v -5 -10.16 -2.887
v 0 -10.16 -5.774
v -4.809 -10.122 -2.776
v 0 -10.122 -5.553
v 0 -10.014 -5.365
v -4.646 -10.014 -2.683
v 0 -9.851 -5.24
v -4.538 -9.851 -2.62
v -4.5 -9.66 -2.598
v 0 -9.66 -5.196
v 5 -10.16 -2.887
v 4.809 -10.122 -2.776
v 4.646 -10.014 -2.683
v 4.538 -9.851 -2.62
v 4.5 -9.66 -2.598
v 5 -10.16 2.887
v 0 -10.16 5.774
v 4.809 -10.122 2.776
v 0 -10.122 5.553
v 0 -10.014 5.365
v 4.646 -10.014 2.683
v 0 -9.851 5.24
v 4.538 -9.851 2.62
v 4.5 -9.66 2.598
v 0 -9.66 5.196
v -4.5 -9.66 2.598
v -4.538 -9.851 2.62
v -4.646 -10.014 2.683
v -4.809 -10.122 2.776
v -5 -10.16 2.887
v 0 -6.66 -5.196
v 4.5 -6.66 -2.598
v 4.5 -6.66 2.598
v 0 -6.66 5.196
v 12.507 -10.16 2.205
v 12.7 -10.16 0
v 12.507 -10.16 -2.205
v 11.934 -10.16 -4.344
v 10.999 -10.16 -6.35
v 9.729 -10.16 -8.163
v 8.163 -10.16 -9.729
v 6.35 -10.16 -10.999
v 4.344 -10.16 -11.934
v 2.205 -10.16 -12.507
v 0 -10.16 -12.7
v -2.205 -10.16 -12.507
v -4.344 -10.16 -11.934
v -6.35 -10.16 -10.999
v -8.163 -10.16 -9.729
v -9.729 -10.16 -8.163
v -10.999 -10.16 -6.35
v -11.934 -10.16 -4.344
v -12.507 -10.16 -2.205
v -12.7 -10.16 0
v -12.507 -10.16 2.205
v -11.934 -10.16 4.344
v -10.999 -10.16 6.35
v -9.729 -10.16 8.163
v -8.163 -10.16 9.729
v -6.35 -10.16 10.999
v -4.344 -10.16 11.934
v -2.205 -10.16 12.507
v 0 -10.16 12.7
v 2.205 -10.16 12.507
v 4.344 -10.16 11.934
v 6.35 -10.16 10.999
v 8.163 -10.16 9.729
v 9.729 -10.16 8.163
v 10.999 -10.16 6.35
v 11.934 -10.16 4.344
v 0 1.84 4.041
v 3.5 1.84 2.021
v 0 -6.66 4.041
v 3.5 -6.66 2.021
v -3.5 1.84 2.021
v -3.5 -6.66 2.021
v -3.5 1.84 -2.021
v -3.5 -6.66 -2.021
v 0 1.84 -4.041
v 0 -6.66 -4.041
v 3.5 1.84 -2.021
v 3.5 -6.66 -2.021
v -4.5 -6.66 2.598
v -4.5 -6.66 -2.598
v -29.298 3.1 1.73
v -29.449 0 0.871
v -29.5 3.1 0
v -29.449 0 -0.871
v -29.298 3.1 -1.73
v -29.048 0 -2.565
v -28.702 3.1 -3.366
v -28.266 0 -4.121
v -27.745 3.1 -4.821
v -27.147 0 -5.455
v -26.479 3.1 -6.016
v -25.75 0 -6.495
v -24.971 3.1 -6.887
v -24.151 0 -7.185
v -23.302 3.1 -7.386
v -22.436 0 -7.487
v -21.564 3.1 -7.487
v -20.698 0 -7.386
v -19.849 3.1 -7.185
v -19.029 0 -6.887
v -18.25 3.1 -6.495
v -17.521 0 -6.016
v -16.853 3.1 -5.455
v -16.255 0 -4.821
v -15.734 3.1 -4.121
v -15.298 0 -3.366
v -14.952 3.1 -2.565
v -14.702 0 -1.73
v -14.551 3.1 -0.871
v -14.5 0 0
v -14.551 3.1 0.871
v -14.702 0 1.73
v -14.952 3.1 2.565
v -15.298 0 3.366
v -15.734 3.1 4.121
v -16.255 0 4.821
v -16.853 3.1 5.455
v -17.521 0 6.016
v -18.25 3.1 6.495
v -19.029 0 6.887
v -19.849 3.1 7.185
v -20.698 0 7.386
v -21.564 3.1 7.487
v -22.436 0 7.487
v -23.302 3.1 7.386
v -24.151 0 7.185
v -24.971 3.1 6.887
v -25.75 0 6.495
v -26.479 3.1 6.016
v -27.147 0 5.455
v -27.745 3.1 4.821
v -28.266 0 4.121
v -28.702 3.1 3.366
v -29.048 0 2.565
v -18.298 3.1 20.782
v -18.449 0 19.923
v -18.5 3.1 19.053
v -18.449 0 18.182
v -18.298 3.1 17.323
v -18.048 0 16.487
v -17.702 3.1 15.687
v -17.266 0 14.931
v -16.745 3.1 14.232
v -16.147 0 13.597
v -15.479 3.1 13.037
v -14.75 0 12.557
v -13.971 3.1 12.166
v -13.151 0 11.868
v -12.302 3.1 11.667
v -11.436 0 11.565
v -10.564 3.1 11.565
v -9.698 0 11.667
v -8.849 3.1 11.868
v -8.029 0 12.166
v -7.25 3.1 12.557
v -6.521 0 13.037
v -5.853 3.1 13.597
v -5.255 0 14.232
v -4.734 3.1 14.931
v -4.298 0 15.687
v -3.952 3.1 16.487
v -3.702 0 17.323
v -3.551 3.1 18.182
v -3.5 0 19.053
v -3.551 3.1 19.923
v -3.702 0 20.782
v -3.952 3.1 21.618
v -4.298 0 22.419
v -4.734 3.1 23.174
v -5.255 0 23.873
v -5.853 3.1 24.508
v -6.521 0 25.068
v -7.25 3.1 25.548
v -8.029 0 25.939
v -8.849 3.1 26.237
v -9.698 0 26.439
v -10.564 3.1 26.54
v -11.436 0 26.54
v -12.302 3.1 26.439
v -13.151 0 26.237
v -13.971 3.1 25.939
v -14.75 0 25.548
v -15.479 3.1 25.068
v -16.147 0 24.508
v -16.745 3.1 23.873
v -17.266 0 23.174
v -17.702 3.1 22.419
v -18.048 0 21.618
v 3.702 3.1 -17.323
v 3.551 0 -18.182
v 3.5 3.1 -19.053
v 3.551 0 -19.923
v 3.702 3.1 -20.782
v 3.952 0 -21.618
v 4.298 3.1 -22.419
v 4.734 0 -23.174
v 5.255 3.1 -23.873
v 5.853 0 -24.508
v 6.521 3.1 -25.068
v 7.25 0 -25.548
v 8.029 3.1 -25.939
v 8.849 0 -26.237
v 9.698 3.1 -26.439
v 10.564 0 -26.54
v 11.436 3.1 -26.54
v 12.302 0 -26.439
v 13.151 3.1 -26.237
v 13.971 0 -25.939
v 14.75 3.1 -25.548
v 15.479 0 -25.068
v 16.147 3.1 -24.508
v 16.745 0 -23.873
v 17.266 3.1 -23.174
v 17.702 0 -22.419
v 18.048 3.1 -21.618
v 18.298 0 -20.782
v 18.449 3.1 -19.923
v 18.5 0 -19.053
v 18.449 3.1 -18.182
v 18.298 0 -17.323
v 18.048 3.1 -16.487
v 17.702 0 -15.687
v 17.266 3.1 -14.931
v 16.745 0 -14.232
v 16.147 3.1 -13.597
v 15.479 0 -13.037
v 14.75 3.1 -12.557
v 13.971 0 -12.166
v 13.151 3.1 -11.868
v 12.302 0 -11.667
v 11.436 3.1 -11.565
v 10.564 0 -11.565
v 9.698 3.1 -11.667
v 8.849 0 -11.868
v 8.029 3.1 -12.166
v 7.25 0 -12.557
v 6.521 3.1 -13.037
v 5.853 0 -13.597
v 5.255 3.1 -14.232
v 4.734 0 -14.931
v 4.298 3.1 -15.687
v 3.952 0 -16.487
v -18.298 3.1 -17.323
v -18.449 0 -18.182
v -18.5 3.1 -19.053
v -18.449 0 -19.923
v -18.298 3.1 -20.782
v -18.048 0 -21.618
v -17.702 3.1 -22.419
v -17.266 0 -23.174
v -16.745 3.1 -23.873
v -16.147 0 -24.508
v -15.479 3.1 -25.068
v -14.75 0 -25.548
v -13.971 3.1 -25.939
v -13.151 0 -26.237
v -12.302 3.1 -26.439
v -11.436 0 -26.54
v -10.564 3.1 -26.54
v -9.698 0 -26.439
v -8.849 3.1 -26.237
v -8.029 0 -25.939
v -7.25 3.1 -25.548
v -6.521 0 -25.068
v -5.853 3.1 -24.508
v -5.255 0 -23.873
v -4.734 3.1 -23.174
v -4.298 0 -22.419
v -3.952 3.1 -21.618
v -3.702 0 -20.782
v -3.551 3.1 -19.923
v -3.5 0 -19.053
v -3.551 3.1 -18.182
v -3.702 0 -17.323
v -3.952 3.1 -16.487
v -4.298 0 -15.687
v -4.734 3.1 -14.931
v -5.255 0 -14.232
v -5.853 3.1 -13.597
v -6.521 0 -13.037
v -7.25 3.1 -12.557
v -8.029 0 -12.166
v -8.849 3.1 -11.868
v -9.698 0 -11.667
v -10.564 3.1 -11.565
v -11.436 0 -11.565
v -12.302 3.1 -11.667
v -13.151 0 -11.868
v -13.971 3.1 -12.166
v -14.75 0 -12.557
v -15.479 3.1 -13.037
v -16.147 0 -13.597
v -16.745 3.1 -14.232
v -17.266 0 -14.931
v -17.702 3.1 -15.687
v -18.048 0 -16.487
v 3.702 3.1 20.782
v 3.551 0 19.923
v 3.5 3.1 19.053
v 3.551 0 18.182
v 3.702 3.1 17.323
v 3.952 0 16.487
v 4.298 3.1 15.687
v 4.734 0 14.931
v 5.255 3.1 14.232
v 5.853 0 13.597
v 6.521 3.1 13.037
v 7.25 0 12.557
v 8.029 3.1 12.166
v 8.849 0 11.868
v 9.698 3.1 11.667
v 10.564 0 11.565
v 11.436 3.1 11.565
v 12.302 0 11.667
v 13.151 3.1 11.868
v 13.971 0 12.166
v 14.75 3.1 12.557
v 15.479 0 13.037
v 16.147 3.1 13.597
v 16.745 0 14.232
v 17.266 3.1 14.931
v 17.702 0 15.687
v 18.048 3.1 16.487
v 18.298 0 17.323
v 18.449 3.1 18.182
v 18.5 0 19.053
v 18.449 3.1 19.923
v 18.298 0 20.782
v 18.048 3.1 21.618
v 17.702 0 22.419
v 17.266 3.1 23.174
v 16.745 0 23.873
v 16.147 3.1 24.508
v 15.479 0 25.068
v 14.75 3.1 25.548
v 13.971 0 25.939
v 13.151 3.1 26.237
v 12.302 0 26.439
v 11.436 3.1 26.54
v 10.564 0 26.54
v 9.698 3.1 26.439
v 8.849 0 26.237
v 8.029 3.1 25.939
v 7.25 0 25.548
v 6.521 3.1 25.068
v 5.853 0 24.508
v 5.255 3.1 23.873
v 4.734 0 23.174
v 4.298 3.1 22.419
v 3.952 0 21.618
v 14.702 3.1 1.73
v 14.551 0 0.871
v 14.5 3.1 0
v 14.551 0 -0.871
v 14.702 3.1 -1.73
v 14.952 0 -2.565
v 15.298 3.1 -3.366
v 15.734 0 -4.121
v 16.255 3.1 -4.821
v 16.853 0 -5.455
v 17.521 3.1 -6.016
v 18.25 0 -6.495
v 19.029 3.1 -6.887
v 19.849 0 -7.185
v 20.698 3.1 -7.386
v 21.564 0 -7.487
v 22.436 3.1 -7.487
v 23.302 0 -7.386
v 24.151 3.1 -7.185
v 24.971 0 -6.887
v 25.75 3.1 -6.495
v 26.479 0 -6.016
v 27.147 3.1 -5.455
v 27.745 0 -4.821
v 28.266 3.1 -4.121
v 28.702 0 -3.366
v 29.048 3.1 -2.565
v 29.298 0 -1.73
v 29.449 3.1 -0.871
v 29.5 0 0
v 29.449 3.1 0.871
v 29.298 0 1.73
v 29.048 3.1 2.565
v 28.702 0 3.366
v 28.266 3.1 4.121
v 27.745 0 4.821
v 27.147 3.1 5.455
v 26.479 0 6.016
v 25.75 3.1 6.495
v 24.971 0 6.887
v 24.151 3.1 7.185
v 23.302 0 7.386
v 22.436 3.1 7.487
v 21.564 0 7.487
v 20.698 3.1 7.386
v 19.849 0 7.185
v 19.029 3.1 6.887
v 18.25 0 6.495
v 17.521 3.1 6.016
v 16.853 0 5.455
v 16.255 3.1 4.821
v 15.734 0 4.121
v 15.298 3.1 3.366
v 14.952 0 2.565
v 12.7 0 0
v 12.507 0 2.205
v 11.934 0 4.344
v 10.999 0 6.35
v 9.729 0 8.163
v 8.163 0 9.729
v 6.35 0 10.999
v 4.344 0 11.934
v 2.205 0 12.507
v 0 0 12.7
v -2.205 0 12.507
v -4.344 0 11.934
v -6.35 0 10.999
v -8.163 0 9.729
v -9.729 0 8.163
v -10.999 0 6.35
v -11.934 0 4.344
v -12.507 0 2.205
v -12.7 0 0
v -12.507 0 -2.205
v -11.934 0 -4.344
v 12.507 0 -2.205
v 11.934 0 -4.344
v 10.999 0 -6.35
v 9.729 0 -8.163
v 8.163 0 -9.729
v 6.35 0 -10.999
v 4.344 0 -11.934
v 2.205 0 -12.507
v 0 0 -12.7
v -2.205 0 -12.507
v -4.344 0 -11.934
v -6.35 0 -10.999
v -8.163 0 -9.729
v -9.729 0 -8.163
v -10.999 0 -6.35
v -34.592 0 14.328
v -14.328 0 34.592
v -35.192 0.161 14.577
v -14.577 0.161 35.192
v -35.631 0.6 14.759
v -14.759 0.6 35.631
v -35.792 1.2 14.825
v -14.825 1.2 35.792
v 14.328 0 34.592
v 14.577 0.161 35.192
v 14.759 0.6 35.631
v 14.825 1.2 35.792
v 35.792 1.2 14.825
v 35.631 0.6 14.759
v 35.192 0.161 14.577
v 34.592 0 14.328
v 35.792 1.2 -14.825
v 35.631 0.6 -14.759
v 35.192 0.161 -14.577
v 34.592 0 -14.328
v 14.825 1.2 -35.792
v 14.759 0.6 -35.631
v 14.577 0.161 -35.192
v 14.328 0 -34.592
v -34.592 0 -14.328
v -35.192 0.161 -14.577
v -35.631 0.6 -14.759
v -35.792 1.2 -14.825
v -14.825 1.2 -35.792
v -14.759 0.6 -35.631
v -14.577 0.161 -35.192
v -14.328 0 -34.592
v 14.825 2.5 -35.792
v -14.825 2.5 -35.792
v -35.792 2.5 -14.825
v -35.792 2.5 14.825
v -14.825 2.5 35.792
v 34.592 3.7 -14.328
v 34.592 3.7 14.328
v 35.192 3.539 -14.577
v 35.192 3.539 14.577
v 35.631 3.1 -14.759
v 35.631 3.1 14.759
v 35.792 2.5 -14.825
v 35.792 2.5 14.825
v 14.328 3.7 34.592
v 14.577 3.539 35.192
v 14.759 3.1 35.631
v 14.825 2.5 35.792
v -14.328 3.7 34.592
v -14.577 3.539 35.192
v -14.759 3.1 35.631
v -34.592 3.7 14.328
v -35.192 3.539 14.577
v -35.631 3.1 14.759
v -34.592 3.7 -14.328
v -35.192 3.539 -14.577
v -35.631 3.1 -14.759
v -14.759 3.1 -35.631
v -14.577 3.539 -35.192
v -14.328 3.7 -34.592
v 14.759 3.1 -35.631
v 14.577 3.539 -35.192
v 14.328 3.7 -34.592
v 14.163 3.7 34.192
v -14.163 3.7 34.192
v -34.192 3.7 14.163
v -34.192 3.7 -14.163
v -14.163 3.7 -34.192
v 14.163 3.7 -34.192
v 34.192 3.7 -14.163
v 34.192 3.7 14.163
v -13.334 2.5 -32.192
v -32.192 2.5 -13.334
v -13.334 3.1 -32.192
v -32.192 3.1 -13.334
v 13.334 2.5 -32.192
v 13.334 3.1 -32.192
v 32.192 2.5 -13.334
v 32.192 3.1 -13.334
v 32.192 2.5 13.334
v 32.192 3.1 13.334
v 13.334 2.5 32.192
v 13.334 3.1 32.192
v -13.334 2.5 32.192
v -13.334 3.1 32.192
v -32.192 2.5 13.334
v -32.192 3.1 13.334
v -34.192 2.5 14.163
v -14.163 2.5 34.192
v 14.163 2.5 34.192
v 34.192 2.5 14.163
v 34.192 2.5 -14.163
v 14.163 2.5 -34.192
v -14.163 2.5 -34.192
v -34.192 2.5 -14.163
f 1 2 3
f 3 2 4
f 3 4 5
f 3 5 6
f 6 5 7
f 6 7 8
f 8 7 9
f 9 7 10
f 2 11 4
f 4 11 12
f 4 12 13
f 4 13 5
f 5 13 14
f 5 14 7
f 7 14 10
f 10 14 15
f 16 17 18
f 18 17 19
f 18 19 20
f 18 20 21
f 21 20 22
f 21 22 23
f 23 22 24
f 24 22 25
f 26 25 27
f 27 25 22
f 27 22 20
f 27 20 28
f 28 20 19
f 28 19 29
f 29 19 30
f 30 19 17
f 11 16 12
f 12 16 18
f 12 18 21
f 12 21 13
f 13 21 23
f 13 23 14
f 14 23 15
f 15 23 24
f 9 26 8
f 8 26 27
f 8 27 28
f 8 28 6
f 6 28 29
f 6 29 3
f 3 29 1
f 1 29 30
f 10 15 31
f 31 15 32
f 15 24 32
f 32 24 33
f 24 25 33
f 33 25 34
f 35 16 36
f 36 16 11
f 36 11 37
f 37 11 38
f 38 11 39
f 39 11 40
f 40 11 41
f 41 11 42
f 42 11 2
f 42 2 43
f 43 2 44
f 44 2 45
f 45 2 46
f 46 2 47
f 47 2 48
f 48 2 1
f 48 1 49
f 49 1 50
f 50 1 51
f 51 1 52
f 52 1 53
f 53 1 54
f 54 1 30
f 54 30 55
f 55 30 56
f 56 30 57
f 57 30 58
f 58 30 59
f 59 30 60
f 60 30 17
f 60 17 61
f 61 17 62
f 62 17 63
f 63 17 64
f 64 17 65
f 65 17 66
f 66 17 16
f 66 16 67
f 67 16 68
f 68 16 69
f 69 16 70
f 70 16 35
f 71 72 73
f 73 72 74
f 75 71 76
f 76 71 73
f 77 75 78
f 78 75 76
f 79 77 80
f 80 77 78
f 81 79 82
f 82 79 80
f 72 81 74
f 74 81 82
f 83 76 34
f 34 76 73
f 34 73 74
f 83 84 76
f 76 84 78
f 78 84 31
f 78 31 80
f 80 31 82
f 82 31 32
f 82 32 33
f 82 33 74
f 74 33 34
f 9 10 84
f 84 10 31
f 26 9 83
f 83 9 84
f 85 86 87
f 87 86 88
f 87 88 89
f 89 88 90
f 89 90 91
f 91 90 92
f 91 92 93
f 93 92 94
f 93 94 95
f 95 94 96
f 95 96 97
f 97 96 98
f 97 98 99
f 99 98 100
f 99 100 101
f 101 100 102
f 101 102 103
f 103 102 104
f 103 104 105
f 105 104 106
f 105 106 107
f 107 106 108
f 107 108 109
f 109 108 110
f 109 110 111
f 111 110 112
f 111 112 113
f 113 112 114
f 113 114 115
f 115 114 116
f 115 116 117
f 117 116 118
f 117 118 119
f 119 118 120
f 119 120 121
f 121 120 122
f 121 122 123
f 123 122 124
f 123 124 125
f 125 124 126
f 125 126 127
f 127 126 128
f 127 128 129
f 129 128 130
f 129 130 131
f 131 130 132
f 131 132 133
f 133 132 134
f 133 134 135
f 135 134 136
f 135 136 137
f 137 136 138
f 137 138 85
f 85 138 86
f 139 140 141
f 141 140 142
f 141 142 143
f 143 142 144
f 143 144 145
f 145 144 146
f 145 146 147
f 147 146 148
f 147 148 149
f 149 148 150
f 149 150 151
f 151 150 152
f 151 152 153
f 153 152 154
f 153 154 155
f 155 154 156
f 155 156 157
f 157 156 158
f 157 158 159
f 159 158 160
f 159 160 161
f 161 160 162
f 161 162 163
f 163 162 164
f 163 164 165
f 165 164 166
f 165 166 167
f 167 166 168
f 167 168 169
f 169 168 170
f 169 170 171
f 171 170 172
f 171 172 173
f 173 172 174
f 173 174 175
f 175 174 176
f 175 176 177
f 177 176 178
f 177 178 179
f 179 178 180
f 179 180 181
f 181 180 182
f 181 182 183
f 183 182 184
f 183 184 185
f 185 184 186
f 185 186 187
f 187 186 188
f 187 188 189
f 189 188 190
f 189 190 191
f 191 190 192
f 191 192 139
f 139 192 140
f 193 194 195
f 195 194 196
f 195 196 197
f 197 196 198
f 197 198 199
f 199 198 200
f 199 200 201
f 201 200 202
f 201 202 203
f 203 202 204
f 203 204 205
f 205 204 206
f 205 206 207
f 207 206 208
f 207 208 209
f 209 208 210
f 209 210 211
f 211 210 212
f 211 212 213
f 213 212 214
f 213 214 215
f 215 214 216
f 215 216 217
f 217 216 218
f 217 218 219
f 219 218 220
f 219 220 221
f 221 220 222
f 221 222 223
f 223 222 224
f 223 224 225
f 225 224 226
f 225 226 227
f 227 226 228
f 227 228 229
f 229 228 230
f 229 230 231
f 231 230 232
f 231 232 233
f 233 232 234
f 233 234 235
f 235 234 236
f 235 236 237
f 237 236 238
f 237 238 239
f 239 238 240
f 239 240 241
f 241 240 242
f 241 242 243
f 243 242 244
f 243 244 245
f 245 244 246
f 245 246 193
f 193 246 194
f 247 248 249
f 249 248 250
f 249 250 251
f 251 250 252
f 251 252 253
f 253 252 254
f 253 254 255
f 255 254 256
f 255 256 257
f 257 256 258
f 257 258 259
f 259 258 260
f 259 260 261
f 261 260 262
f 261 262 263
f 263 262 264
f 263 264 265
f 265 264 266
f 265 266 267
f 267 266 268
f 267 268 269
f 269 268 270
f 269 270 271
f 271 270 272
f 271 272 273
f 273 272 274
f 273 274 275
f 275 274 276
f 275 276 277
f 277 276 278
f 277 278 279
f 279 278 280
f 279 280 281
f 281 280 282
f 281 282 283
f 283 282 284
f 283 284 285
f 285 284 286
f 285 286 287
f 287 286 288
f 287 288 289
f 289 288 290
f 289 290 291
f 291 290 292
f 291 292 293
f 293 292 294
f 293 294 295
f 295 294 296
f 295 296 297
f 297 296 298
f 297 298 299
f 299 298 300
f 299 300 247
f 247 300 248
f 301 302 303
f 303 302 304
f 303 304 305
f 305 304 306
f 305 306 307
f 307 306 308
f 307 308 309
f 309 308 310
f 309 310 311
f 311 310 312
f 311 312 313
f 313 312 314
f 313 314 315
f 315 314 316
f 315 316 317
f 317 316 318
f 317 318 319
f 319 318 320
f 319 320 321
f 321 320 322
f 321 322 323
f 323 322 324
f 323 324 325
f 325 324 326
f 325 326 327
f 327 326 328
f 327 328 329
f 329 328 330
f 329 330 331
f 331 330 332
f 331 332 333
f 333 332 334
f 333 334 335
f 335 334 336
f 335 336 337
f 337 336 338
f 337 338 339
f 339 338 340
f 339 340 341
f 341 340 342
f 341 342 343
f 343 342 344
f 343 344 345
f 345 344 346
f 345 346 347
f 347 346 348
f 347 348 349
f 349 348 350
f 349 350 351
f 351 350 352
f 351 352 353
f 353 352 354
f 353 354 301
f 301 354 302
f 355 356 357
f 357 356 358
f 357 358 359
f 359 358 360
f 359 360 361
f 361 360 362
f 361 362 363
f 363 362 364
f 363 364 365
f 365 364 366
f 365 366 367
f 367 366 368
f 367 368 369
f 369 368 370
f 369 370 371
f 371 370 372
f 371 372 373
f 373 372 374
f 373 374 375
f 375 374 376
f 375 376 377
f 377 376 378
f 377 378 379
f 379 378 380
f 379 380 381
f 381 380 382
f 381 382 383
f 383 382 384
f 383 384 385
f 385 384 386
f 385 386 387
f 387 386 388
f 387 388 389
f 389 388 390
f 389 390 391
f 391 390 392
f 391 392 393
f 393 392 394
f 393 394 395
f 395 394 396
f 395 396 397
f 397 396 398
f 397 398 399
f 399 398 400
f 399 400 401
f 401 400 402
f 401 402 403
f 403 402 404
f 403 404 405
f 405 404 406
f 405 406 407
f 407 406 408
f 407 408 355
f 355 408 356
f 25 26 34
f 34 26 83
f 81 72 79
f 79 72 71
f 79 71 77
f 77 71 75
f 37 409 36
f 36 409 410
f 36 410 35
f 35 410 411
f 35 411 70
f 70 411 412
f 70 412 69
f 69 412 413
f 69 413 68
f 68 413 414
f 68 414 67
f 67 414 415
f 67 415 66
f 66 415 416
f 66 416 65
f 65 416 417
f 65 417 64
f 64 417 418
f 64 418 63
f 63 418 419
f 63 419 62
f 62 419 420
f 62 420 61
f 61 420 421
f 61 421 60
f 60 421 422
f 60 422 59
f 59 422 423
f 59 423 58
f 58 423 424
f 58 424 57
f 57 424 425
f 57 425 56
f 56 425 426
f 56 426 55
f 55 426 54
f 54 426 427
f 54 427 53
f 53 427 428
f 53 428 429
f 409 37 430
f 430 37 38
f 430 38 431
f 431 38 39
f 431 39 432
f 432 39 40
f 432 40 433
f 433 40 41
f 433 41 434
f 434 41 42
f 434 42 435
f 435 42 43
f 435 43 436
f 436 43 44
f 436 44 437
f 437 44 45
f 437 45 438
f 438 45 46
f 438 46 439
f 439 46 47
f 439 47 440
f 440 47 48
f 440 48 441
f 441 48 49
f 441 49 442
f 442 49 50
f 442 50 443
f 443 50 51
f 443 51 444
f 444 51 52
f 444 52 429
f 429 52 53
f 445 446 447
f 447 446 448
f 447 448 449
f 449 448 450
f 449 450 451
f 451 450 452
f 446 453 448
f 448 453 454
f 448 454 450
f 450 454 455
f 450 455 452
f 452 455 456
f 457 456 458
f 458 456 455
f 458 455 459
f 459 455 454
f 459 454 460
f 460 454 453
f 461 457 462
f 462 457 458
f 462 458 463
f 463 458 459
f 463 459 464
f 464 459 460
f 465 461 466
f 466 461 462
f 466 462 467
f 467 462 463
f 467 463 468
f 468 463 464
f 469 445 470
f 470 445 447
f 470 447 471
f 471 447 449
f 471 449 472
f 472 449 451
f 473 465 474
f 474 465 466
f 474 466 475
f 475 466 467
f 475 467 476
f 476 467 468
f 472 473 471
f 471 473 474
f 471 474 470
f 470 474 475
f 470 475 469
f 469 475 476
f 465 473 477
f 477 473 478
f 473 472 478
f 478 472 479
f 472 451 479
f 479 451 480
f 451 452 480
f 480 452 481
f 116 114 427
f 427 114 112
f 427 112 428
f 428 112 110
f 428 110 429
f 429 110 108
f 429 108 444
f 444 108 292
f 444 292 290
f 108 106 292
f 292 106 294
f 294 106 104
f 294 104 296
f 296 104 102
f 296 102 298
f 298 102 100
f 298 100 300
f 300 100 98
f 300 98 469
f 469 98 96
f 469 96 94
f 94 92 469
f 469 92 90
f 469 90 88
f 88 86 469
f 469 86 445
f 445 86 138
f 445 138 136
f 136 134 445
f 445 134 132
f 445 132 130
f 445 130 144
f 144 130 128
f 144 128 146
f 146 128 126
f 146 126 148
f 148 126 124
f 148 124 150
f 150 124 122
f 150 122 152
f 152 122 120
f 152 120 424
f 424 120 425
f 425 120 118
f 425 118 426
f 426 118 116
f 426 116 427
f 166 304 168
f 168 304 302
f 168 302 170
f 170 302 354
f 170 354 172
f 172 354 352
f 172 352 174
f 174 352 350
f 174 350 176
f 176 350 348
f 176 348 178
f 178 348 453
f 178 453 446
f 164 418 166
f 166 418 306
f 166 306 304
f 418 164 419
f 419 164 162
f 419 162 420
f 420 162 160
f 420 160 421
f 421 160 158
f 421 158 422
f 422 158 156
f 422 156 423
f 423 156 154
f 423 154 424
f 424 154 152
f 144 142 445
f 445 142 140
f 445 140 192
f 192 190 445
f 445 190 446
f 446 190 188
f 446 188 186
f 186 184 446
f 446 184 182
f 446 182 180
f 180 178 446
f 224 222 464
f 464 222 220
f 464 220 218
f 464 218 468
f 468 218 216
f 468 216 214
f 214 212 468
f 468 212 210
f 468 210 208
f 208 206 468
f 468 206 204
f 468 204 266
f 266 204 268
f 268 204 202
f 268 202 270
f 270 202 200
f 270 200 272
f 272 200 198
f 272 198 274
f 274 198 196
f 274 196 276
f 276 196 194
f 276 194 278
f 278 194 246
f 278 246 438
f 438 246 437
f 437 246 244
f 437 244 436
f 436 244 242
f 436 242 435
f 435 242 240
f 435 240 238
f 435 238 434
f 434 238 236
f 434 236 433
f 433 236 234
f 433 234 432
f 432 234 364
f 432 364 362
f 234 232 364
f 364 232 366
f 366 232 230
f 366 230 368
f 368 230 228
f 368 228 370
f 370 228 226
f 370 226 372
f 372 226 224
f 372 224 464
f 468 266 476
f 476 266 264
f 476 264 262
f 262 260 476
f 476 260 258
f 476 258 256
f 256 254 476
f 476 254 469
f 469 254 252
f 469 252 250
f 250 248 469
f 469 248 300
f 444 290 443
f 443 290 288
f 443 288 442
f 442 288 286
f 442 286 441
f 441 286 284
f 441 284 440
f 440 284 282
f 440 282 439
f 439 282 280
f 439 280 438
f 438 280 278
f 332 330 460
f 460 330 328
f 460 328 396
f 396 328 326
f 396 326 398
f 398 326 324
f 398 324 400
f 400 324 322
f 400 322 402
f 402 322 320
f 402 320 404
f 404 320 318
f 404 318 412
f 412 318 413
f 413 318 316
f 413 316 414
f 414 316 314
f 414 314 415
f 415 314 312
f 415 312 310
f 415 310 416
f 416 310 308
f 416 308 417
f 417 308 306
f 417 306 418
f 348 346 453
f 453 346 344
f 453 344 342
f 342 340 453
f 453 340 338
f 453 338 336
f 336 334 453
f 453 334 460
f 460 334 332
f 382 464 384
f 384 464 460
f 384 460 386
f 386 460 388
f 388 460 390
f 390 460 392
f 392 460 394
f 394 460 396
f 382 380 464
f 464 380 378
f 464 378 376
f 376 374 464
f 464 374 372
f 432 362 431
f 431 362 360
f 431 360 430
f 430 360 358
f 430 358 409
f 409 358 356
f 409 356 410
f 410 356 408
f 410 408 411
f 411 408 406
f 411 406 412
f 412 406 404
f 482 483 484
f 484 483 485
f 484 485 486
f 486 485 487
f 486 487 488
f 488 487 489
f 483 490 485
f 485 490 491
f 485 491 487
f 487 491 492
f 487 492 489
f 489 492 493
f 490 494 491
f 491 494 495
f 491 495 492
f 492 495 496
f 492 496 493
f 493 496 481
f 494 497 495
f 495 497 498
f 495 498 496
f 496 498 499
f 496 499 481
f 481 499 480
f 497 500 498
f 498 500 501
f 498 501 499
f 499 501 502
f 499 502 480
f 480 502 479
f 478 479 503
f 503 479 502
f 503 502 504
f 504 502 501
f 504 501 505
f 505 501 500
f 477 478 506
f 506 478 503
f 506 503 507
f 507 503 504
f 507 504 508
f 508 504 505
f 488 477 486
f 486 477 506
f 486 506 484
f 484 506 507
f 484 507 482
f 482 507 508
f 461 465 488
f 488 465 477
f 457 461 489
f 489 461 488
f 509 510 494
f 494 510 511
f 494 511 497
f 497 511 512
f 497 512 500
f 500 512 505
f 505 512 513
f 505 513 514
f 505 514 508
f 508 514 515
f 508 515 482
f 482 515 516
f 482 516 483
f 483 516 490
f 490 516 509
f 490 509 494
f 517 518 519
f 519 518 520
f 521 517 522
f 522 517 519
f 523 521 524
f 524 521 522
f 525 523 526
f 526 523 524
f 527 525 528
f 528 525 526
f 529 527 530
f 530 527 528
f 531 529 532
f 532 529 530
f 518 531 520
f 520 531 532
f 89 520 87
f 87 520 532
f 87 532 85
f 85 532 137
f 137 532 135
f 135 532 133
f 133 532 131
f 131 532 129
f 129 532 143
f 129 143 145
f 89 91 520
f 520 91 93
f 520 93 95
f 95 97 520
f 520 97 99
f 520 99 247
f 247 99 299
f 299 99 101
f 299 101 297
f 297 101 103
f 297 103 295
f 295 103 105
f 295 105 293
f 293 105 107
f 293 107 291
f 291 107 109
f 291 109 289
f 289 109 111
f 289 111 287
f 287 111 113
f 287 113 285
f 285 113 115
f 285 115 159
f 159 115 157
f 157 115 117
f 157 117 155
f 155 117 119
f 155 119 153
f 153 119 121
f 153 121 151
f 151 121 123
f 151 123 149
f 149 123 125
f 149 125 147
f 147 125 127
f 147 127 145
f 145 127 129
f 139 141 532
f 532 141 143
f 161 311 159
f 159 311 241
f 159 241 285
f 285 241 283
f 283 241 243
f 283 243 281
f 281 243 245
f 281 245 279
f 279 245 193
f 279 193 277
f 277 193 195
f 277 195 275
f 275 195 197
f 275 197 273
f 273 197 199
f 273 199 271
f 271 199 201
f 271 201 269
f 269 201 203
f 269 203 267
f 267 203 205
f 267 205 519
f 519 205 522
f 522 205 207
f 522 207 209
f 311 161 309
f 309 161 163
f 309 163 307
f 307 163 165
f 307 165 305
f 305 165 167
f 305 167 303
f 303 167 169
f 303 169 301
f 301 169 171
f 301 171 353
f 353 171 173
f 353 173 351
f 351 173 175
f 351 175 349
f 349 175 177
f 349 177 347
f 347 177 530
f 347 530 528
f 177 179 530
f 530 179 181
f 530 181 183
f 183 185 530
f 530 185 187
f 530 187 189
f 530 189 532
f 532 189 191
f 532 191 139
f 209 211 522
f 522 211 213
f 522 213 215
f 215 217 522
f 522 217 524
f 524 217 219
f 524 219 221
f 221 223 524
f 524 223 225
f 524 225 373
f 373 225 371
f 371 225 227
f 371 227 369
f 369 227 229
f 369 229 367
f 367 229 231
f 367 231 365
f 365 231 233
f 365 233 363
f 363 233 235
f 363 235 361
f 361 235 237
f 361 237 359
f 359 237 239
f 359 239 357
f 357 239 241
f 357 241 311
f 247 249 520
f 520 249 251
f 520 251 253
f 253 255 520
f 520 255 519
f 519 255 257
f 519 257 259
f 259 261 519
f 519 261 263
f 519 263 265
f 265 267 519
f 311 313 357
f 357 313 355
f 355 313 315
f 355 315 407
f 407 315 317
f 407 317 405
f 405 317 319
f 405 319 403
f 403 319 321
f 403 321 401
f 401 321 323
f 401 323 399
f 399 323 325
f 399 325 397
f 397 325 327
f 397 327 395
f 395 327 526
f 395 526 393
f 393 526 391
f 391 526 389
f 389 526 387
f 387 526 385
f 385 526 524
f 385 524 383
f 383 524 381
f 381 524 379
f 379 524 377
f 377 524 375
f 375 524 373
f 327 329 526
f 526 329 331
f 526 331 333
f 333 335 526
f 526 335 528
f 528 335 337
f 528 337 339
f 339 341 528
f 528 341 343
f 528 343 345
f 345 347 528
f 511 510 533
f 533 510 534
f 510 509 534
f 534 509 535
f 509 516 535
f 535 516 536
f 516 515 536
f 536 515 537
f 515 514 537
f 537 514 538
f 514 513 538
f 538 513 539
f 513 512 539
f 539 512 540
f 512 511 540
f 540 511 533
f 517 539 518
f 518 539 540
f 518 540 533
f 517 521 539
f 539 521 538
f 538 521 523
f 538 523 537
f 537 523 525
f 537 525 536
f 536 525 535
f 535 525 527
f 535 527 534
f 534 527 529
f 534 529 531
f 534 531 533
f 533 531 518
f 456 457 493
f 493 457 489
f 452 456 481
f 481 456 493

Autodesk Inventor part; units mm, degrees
ref_plane "YZ Plane" through (0, 0, 0) normal (1, 0, 0) x (0, 1, 0)
ref_plane "XZ Plane" through (0, 0, 0) normal (0, 1, 0) x (-1, 0, 0)
ref_plane "XY Plane" through (0, 0, 0) normal (0, 0, 1) x (1, 0, 0)
sketch "스케치3" plane through (0, 0, 0) normal (0, 1, 0) x (-1, 0, 0)
  line L0 (35.7919, -14.8255) -> (14.8255, -35.7919)
  line L1 (14.8255, -35.7919) -> (-14.8255, -35.7919)
  line L2 (-14.8255, -35.7919) -> (-35.7919, -14.8255)
  line L3 (-35.7919, -14.8255) -> (-35.7919, 14.8255)
  line L4 (-35.7919, 14.8255) -> (-14.8255, 35.7919)
  line L5 (-14.8255, 35.7919) -> (14.8255, 35.7919)
  line L6 (14.8255, 35.7919) -> (35.7919, 14.8255)
  line L7 (35.7919, 14.8255) -> (35.7919, -14.8255)
  line L8 (32.5919, -13.5) -> (13.5, -32.5919)
  line L9 (13.5, -32.5919) -> (-13.5, -32.5919)
  line L10 (-13.5, -32.5919) -> (-32.5919, -13.5)
  line L11 (-32.5919, -13.5) -> (-32.5919, 13.5)
  line L12 (-32.5919, 13.5) -> (-13.5, 32.5919)
  line L13 (-13.5, 32.5919) -> (13.5, 32.5919)
  line L14 (13.5, 32.5919) -> (32.5919, 13.5)
  line L15 (32.5919, 13.5) -> (32.5919, -13.5)
  point P0 (0, 0)
  point P1 (0, 0)
  point P2 (0, 0)
  point P3 (0, 0)
  dimension "d43" = 27
  dimension "d44" = 3.2
extrude "돌출2" add sketch "스케치3" along normal blind 3.7 contours L0 L1 L2 L3 L4 L5 L6 L7 | L8 L9 L10 L11 L12 L13 L14 L15
sketch "스케치4" plane through (0, 3.7, 0) normal (0, 1, 0) x (1, 0, 0)
  line L0 (13.5, -32.5919) -> (-13.5, -32.5919)
  line L1 (-13.5, -32.5919) -> (-32.5919, -13.5)
  line L2 (-32.5919, -13.5) -> (-32.5919, 13.5)
  line L3 (-32.5919, 13.5) -> (-13.5, 32.5919)
  line L4 (-13.5, 32.5919) -> (13.5, 32.5919)
  line L5 (13.5, 32.5919) -> (32.5919, 13.5)
  line L6 (32.5919, 13.5) -> (32.5919, -13.5)
  line L7 (32.5919, -13.5) -> (13.5, -32.5919)
  line L8 (-14.1627, 34.1919) -> (14.1627, 34.1919)
  line L9 (14.1627, 34.1919) -> (34.1919, 14.1627)
  line L10 (34.1919, 14.1627) -> (34.1919, -14.1627)
  line L11 (34.1919, -14.1627) -> (14.1627, -34.1919)
  line L12 (14.1627, -34.1919) -> (-14.1627, -34.1919)
  line L13 (-14.1627, -34.1919) -> (-34.1919, -14.1627)
  line L14 (-34.1919, -14.1627) -> (-34.1919, 14.1627)
  line L15 (-34.1919, 14.1627) -> (-14.1627, 34.1919)
  line L16 (-13.3343, 32.1919) -> (13.3343, 32.1919)
  line L17 (13.3343, 32.1919) -> (32.1919, 13.3343)
  line L18 (32.1919, 13.3343) -> (32.1919, -13.3343)
  line L19 (32.1919, -13.3343) -> (13.3343, -32.1919)
  line L20 (13.3343, -32.1919) -> (-13.3343, -32.1919)
  line L21 (-13.3343, -32.1919) -> (-32.1919, -13.3343)
  line L22 (-32.1919, -13.3343) -> (-32.1919, 13.3343)
  line L23 (-32.1919, 13.3343) -> (-13.3343, 32.1919)
  line L24 (-35.7919, 14.8255) -> (-35.7919, -14.8255) projected
  point P0 (0, 0)
  point P1 (0, 0)
  point P2 (0, 0)
  point P3 (0, 0)
  dimension "d7" = 27
  dimension "d60" = 1.6
  dimension "d61" = 2
extrude "돌출3" cut sketch "스케치4" against normal blind 1.2 contours L0 L1 L2 L3 L4 L5 L6 L7 | L8 L9 L10 L11 L12 L13 L14 L15 | L16 L17 L18 L19 L20 L21 L22 L23
sketch "스케치9" plane through (0, 2.5, 0) normal (0, 1, 0) x (1, 0, 0)
  line L0 (-13.3343, 32.1919) -> (13.3343, 32.1919)
  line L1 (13.3343, 32.1919) -> (32.1919, 13.3343)
  line L2 (32.1919, 13.3343) -> (32.1919, -13.3343)
  line L3 (32.1919, -13.3343) -> (13.3343, -32.1919)
  line L4 (13.3343, -32.1919) -> (-13.3343, -32.1919)
  line L5 (-13.3343, -32.1919) -> (-32.1919, -13.3343)
  line L6 (-32.1919, -13.3343) -> (-32.1919, 13.3343)
  line L7 (-32.1919, 13.3343) -> (-13.3343, 32.1919)
  line L8 (-14.1627, 34.1919) -> (14.1627, 34.1919) projected
  line L9 (-12.0917, 29.1919) -> (12.0917, 29.1919)
  line L10 (12.0917, 29.1919) -> (29.1919, 12.0917)
  line L11 (29.1919, 12.0917) -> (29.1919, -12.0917)
  line L12 (29.1919, -12.0917) -> (12.0917, -29.1919)
  line L13 (12.0917, -29.1919) -> (-12.0917, -29.1919)
  line L14 (-12.0917, -29.1919) -> (-29.1919, -12.0917)
  line L15 (-29.1919, -12.0917) -> (-29.1919, 12.0917)
  line L16 (-29.1919, 12.0917) -> (-12.0917, 29.1919)
  point P0 (0, 0)
  point P1 (0, 0)
  point P2 (0, 0)
  dimension "d46" = 2
  dimension "d47" = 3
extrude "돌출8" add sketch "스케치9" along normal blind 0.6 contours L0 L1 L2 L3 L4 L5 L6 L7 | L9 L10 L11 L12 L13 L14 L15 L16
fillet "모깎기1" radius 1.2 16 edges at (-35.7919, 3.7, 0) (-25.3087, 3.7, 25.3087) (0, 3.7, 35.7919) (25.3087, 3.7, 25.3087) (35.7919, 3.7, 0) (25.3087, 3.7, -25.3087) (0, 3.7, -35.7919) (-25.3087, 3.7, -25.3087) (25.3087, 0, 25.3087) (0, 0, 35.7919) (-25.3087, 0, 25.3087) (-35.7919, 0, 0) (-25.3087, 0, -25.3087) (0, 0, -35.7919) (25.3087, 0, -25.3087) (35.7919, 0, 0)
sketch "스케치11" plane through (0, 0, 0) normal (0, -1, 0) x (1, 0, 0)
  circle A0 centre (0, 0) radius 12.7
  dimension "d62" = 25.4
extrude "돌출11" add sketch "스케치11" along normal blind 10.16
sketch "스케치12" plane through (0, -10.16, 0) normal (0, -1, 0) x (1, 0, 0)
  circle A0 centre (0, 0) radius 4.5
  line L0 (4.5, 2.5981) -> (4.5, -2.5981)
  line L1 (4.5, -2.5981) -> (0, -5.1962)
  line L2 (0, -5.1962) -> (-4.5, -2.5981)
  line L3 (-4.5, -2.5981) -> (-4.5, 2.5981)
  line L4 (-4.5, 2.5981) -> (0, 5.1962)
  line L5 (0, 5.1962) -> (4.5, 2.5981)
  point P0 (2.25, 3.8971)
  point P1 (-2.25, 3.8971)
  point P2 (4.5, 0)
  point P3 (-4.5, 0)
  point P4 (-2.25, -3.8971)
  point P5 (2.25, -3.8971)
  dimension "d65" = 9
extrude "돌출12" cut sketch "스케치12" against normal blind 12
sketch "스케치13" plane through (0, 0, 0) normal (0, -1, 0) x (1, 0, 0)
  circle A0 centre (-22, 0) radius 7.5
  circle A1 centre (-11, -19.0526) radius 7.5
  circle A2 centre (11, -19.0526) radius 7.5
  circle A3 centre (22, 0) radius 7.5
  circle A4 centre (11, 19.0526) radius 7.5
  circle A5 centre (-11, 19.0526) radius 7.5
  point P0 (0, 0)
  dimension "d70" = 15
  dimension "d71" = 22
  dimension "d74" = 360
extrude "돌출13" cut sketch "스케치13" against normal up to surface (3.1 mm away)
sketch "스케치18" plane through (0, 1.84, 0) normal (0, -1, 0) x (1, 0, 0)
  line L0 (4.5, 2.5981) -> (4.5, -2.5981) projected
  line L1 (0, 5.1962) -> (4.5, 2.5981) projected
  line L2 (-4.5, 2.5981) -> (0, 5.1962) projected
  line L3 (-4.5, -2.5981) -> (-4.5, 2.5981) projected
  line L4 (0, -5.1962) -> (-4.5, -2.5981) projected
  line L5 (4.5, -2.5981) -> (0, -5.1962) projected
  line L6 (3.5, 2.0207) -> (3.5, -2.0207)
  line L7 (3.5, -2.0207) -> (0, -4.0415)
  line L8 (0, -4.0415) -> (-3.5, -2.0207)
  line L9 (-3.5, -2.0207) -> (-3.5, 2.0207)
  line L10 (-3.5, 2.0207) -> (0, 4.0415)
  line L11 (0, 4.0415) -> (3.5, 2.0207)
  point P0 (0, 0)
  point P1 (0, 0)
  dimension "d116" = 1
extrude "돌출14" add sketch "스케치18" along normal blind 8.5
fillet "모깎기2" radius 0.5 6 edges at (2.25, -10.16, 3.8971) (-2.25, -10.16, 3.8971) (4.5, -10.16, 0) (2.25, -10.16, -3.8971) (-2.25, -10.16, -3.8971) (-4.5, -10.16, 0)
equation "\"d85\" = 55deg"
equation "\"d105\" = 55deg"
properties part number "OV-PAM_top_2"
